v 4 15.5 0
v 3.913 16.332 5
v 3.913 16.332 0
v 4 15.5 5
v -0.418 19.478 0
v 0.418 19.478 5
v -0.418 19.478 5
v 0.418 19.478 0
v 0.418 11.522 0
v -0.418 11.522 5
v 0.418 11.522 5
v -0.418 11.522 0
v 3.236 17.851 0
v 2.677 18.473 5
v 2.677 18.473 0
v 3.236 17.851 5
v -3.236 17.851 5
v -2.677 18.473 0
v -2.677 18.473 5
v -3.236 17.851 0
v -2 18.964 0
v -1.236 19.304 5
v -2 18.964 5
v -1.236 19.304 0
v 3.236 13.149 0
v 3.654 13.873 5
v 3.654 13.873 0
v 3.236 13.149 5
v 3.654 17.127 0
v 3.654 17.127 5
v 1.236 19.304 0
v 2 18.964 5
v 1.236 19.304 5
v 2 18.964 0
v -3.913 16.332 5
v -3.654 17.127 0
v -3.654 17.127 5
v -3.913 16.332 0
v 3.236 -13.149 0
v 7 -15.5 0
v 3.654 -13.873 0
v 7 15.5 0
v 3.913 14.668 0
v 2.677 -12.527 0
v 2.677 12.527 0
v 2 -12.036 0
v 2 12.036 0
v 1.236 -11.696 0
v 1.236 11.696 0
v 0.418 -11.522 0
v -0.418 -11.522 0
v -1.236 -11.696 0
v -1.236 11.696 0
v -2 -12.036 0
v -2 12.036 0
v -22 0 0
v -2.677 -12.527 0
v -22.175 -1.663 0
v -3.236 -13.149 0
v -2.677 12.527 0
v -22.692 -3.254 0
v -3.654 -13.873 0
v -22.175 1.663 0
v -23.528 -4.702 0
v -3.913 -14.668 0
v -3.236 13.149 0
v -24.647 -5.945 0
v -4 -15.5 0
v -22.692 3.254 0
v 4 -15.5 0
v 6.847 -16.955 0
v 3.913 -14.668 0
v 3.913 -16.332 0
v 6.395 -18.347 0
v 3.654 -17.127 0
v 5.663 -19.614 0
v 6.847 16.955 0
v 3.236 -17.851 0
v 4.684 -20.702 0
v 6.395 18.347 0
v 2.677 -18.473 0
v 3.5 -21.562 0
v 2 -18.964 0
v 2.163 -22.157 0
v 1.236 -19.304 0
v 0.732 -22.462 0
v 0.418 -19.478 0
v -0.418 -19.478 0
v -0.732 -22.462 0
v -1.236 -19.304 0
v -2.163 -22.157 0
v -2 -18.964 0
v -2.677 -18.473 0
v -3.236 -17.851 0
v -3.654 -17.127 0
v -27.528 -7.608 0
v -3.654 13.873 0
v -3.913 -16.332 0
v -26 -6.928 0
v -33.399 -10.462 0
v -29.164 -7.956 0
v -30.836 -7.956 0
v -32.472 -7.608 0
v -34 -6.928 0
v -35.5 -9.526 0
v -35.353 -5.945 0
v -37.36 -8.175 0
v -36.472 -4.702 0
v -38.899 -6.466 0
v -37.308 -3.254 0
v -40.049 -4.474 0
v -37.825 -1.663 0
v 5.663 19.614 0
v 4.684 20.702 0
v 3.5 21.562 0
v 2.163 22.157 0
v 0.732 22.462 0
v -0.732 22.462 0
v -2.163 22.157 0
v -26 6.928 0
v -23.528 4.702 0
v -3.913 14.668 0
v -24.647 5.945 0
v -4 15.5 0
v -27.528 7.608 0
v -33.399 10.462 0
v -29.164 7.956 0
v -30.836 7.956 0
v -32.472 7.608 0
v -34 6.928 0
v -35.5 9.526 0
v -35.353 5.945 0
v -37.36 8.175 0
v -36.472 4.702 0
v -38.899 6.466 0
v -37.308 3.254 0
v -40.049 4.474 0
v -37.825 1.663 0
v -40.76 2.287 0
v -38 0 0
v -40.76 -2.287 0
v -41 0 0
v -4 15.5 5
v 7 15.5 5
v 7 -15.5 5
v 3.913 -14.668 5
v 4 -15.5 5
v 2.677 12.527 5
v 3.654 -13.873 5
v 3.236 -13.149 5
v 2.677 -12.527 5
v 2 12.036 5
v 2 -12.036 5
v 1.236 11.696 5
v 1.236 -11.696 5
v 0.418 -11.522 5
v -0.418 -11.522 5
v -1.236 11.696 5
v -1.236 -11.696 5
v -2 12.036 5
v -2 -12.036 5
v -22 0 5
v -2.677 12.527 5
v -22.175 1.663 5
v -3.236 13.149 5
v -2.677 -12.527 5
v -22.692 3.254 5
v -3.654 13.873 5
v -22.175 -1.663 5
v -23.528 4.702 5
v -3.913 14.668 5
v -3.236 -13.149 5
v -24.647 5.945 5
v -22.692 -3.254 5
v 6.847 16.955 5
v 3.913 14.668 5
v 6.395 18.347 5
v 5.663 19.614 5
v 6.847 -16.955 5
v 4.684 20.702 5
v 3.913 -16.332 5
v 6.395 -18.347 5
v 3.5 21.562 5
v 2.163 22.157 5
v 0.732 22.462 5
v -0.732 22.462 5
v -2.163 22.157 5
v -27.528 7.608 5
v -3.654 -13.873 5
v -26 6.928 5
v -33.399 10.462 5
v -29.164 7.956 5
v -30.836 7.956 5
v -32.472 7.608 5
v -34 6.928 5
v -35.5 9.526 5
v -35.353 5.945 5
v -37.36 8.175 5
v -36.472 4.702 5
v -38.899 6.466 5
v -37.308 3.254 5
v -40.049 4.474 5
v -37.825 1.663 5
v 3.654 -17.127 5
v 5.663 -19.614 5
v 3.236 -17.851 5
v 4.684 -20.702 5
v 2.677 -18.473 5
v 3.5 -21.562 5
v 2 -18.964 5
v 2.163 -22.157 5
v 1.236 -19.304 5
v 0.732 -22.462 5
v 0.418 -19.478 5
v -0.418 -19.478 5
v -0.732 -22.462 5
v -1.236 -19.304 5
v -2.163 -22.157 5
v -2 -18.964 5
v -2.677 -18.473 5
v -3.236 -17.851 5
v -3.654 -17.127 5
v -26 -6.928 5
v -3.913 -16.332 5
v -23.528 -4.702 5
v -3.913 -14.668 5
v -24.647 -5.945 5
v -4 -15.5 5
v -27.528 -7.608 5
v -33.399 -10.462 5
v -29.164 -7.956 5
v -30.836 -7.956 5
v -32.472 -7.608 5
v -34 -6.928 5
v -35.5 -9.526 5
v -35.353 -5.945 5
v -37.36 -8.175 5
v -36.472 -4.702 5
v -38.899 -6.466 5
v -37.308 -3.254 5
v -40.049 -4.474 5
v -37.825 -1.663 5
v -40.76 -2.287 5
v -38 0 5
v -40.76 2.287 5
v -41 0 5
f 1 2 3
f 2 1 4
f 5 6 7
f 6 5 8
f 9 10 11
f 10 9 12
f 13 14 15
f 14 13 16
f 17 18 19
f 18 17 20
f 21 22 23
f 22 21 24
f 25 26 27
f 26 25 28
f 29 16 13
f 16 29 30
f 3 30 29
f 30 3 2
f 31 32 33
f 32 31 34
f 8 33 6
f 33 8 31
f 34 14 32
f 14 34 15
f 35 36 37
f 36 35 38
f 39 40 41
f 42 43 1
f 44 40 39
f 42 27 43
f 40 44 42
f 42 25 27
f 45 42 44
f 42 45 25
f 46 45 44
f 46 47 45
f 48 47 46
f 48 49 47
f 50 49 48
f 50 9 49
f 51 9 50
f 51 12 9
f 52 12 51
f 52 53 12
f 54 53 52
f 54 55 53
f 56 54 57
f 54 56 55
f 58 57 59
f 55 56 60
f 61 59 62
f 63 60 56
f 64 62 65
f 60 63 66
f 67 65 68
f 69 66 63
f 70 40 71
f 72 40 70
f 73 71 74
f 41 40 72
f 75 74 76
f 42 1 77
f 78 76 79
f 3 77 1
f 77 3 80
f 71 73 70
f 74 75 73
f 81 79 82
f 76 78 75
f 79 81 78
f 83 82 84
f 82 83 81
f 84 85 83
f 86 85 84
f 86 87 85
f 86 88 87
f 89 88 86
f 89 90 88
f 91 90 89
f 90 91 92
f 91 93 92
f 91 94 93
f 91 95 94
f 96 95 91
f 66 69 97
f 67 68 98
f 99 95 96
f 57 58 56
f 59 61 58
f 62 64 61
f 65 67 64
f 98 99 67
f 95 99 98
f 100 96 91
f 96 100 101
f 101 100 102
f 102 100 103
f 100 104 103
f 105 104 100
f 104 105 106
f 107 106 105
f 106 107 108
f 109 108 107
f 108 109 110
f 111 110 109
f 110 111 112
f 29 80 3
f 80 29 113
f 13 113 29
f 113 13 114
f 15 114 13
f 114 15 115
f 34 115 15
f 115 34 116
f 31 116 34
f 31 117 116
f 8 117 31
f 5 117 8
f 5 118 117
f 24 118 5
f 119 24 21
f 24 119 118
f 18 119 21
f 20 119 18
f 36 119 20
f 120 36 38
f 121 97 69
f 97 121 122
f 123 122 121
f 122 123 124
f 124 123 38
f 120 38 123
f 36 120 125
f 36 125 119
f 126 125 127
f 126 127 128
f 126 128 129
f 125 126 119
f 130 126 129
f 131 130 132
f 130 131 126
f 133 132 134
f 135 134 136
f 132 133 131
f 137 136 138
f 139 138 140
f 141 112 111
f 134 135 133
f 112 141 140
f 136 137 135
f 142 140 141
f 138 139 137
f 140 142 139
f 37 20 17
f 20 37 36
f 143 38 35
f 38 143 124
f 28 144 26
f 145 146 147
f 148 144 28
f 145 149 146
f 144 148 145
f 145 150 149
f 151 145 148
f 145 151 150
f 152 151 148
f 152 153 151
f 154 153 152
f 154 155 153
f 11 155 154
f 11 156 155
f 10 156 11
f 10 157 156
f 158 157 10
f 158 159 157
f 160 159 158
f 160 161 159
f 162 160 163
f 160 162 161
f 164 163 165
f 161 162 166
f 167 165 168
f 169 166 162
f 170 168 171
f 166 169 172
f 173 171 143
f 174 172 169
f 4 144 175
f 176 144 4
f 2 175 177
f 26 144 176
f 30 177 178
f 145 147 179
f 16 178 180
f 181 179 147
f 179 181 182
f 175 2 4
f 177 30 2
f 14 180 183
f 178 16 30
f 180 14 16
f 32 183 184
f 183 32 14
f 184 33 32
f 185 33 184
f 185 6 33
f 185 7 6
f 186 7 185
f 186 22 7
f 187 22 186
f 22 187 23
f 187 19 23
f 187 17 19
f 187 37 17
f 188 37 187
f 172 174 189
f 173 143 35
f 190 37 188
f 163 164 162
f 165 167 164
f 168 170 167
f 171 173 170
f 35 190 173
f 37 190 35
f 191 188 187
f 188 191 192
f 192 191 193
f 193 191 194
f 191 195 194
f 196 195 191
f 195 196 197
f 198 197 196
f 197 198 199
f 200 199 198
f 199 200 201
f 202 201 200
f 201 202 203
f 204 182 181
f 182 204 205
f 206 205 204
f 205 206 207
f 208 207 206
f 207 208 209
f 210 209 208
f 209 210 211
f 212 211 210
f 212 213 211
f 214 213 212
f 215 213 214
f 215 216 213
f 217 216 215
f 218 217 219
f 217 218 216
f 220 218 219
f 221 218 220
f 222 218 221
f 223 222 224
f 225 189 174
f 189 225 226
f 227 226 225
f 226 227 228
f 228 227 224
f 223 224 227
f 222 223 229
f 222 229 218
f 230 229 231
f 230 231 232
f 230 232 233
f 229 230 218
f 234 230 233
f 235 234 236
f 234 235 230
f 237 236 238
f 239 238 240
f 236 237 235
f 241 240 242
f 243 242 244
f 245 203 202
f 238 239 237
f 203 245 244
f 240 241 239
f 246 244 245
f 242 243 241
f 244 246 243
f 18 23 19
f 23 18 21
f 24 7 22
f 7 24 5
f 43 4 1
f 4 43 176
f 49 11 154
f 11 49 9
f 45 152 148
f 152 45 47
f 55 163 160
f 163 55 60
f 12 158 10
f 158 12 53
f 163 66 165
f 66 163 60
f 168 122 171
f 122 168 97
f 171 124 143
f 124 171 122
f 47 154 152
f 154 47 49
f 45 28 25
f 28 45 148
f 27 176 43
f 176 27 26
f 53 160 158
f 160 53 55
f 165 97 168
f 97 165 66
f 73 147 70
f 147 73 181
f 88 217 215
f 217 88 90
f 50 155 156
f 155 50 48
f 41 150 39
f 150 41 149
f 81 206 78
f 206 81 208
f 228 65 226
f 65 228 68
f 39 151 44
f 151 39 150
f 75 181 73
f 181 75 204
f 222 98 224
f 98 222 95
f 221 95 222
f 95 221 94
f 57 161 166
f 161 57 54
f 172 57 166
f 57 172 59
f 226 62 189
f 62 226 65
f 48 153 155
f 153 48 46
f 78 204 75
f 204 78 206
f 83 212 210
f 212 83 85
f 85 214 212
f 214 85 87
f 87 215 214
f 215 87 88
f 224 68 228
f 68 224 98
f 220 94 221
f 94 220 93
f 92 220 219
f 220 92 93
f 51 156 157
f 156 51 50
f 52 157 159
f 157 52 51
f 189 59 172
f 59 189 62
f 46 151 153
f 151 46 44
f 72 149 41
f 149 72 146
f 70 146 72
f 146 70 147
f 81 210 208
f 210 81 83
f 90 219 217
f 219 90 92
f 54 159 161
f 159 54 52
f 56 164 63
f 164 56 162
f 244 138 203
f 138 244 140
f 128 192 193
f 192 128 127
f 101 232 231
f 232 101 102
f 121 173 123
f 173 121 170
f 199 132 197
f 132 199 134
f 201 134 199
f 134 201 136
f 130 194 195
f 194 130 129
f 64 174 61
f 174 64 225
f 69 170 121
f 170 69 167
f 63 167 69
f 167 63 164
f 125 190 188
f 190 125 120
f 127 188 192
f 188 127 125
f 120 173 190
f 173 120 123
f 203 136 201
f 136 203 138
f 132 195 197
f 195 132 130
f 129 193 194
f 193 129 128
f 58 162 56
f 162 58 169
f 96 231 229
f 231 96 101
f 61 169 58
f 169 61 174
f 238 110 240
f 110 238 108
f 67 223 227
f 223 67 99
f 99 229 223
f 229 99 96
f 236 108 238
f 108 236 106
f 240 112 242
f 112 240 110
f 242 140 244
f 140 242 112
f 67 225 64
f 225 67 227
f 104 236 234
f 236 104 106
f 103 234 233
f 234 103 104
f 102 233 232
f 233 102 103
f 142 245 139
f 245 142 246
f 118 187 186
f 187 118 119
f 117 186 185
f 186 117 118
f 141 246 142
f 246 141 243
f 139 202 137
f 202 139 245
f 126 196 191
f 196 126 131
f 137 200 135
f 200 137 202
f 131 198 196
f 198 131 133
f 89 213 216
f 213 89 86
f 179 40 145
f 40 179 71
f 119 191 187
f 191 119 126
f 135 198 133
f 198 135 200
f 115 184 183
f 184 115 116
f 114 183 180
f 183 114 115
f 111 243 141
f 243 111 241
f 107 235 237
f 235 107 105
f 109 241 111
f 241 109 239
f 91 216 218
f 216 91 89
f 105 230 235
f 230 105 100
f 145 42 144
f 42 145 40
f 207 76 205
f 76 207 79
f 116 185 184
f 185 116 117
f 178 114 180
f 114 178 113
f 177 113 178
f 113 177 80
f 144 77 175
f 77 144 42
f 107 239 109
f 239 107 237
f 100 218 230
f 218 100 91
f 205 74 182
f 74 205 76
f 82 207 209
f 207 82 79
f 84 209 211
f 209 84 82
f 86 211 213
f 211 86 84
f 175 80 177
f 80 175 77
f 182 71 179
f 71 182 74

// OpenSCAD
$fs=.75;

difference() {
	hull() {
		union() {
			translate(v = [0, 15.5000000000, 0]) {
				cylinder(d = 14.0000000000, h = 5.0000000000);
			}
			mirror(v = [0, 1, 0]) {
				translate(v = [0, 15.5000000000, 0]) {
					cylinder(d = 14.0000000000, h = 5.0000000000);
				}
			}
			translate(v = [-30.0000000000, 0, 0]) {
				cylinder(d = 22.0000000000, h = 5.0000000000);
			}
		}
	}
	union() {
		translate(v = [0, 15.5000000000, 0]) {
			cylinder(d = 8.0000000000, h = 5.0000000000);
		}
		mirror(v = [0, 1, 0]) {
			translate(v = [0, 15.5000000000, 0]) {
				cylinder(d = 8.0000000000, h = 5.0000000000);
			}
		}
		translate(v = [-30.0000000000, 0, 0]) {
			cylinder(d = 16.0000000000, h = 5.0000000000);
		}
	}
}
/***********************************************
*********      SolidPython code:      **********
************************************************
 
from solid import *
from solid import extensions

class Object:
    pass


rod=Object()
rod.d=8.0

nema17 = Object()
nema17.side = 43.
nema17.holeDistance = 31.0
nema17.screwD= 3.
nema17.height = 34. #47 for the long ones, 34 for the short ones


bearing = Object()
bearing.outD = 15.0
bearing.length = 24.0

# to place the rod supports on top of the nema17
supportDepth=10
xRodHole = cylinder(d=rod.d, h=20).rot(y=90)
xSupport = ( cube([supportDepth,nema17.side,rod.d/2+1]).align('left','bottom')
             - xRodHole.move(z=-.5)
             - cylinder(d=nema17.screwD,h=12).center().move(x=5,y=nema17.holeDistance/2.).mirrorCopy('y')
           ).rot(x=180)


bearingShape = cylinder(d=bearing.outD, h= bearing.length+1).center()

#minimal y cart, z motor will be placed in between the rails
yRodDistance = 60.0 # rounding up from nema17.side + bearing.outD
wall=2.0
cartWidth = 2*bearing.length
yBearings = bearingShape.move(z=bearing.length/2).mirrorCopy('z').move(x=yRodDistance/2).mirrorCopy('x')
yCart = ( ( cylinder(d= bearing.outD + 2*wall, h= cartWidth).center().rot(x=90).move(x=yRodDistance/2).mirrorCopy('x')
          + cube([yRodDistance, cartWidth, bearing.outD/2+wall]).align('bottom').move(z=-bearing.outD/2-wall)
          + cube([yRodDistance+bearing.outD+2*wall, cartWidth, bearing.outD/2+wall]).align('top').move(z=bearing.outD/2+wall)

          ) - yBearings.rot(x=90)
            - cube([nema17.side, cartWidth, bearing.outD/2-3]).align('top')
            - cube([nema17.side, cartWidth, bearing.outD]).align('bottom')
            - cube([yRodDistance+20, cartWidth, 3]).align('bottom').move(z=-bearing.outD/2-wall)
            - cylinder(d=3,h=10).move([nema17.holeDistance/2, nema17.holeDistance/2, -bearing.outD/2]).mirrorCopy('x').mirrorCopy('y').debug()
            - cylinder(d=nema17.holeDistance, h =10).move(z=-bearing.outD/2)
          )



#supports for holding the y rods in from the x bearings
bearingCover = cylinder(d= bearing.outD + 2*wall, h= bearing.length).center().rot(y=90)
baseBlock = hull( bearingCover
                  + cube([bearing.outD+2,10,bearing.outD+2]).align('back').move(y=bearing.outD/2+wall))
capScrews = cylinder(d=3., h=bearing.outD + 2*wall).center().move(x=rod.d/2+3./2+1,y=12).mirrorCopy('x')
rodHole = cylinder(d=rod.d,h=10).rot(x=-90).move(y=bearing.outD/2+wall)
#capTopBase = cube([bearing.length, 11, bearing.outD]).center('x').move(y=bearing.outD/2+wall)
#capTopBase = polygon([[0,0],[0,10],[10,10],[10,-3]]).linear_extrude(bearing.length,True).rot(y=-90).move(y=bearing.outD/2+wall)
capTopBase = cube([bearing.length, 20, bearing.outD]).center('x')-bearingCover

baseSupport = baseBlock - rodHole - capScrews

ySupport = part(cylinder(d= bearing.outD + 2*wall, h= yRodDistance + bearing.length).center().rot(y=90)
                 - hole(cylinder(d= bearing.outD, h= yRodDistance + bearing.length).center().rot(y=90))
                 + ( baseSupport
                     * cube(50).align('top')
                   ).move(x=yRodDistance/2).mirrorCopy('x')
                 - cube(1000).align('top').move(z=-bearing.outD/2+1)
                 )

ySupportRodCap = ( baseSupport
                * capTopBase
                - cube([bearing.length,50,1]).align('bottom')
                - cube([bearing.length,10,10]).center('xy')
                )

#support for z rods placed on the falt surface of the yCart above the bearings
zRodDistance = 31.
rodSupport = (cylinder(d=rod.d + 3, h=6) - cylinder(d=rod.d, h=6+1)).move(y=zRodDistance / 2)
beltGuide = ( cube([bearing.outD, bearing.length-zRodDistance/2, 6]).center('x')
              - cylinder(d=rod.d + 6,h=6+1)
              - cube([1,20,6+1]).center('x')).move(y=zRodDistance/2)
zSupport = ( cube([bearing.outD,2*bearing.length,wall]).center('xy')
             + rodSupport.move(z=wall).mirrorCopy('y')
             + beltGuide.move(z=wall).mirrorCopy('y')
           )

zstepper = cube([nema17.side,nema17.side,34]).center('xy').move(z=-bearing.outD/2).color('gray')


yCartZSupport = yCart + zSupport.move(x=yRodDistance/2 ,z=bearing.outD/2)


def xTailBase(h):
    return hull([cylinder(d=3+4,h=h).move(x= 4, y=3./2+rod.d/2+1).mirrorCopy('y'),
                 cylinder(d=4+6, h=h).move(x=-3)
                ]).move(z=.5)

capScrewHoles = cylinder(d=3,h=100).center().move(x= 4, y=3./2+rod.d/2+1).mirrorCopy('y')
pulleyScrewHole = cylinder(d=4,h=100).center().move(x= -3)
nutCuts = (cylinder(d=3+4,h=nema17.height-7).move(x= 4, y=3./2+rod.d/2+1).mirrorCopy('y')
          + cylinder(d=4+6, h=nema17.height-7).move(x=-3)).move(z=7)
xTailSupport = ( xTailBase(nema17.height+1.5+rod.d/2.)
                 - xRodHole
                 - capScrewHoles
                 - pulleyScrewHole
                 - nutCuts
               )
xTailCap = ( xTailBase(7)
             - xRodHole
             - capScrewHoles
             - pulleyScrewHole
            )


zTopH=5.
zBearingD = 16.
zTopBase = hull(cylinder(d=rod.d+6,h=zTopH).move(y=zRodDistance/2).mirrorCopy('y')
            +cylinder(d=zBearingD+6,h=zTopH).move(x=-yRodDistance/2))
zHoles =  (cylinder(d=rod.d,h=zTopH).move(y=zRodDistance/2).mirrorCopy('y')
           + cylinder(d=zBearingD,h=zTopH).move(x=-yRodDistance/2))

zTop = zTopBase - zHoles
scene = zTop

'''
scene = ( xSupport.move(x=-100)
          + ySupport + ySupportRodCap.move(x=-yRodDistance / 2, z=3)
          + (yCartZSupport ).move(y=50)
        )
'''
scad_render_to_file(scene, 'routerParts.scad', '$fs=.75;')

#scad_render_to_file(xSupport, 'routerParts_xSupport.scad', '$fs=.75;')
#scad_render_to_file(ySupport, 'routerParts_ySupport.scad', '$fs=.75;')
#scad_render_to_file(ySupportRodCap, 'routerParts_ySupportCap.scad', '$fs=.75;')
#scad_render_to_file(yCartZSupport, 'routerParts_yCart.scad', '$fs=.75;')
#scad_render_to_file( xTailSupport.rot(y=90), 'routerParts_xTailSupport.scad', '$fs=.75;')
#scad_render_to_file( xTailCap.rot(y=90), 'routerParts_xTailCap.scad', '$fs=.75;')
scad_render_to_file( zTop, 'routerParts_zTop.scad', '$fs=.75;')
 
 
************************************************/
